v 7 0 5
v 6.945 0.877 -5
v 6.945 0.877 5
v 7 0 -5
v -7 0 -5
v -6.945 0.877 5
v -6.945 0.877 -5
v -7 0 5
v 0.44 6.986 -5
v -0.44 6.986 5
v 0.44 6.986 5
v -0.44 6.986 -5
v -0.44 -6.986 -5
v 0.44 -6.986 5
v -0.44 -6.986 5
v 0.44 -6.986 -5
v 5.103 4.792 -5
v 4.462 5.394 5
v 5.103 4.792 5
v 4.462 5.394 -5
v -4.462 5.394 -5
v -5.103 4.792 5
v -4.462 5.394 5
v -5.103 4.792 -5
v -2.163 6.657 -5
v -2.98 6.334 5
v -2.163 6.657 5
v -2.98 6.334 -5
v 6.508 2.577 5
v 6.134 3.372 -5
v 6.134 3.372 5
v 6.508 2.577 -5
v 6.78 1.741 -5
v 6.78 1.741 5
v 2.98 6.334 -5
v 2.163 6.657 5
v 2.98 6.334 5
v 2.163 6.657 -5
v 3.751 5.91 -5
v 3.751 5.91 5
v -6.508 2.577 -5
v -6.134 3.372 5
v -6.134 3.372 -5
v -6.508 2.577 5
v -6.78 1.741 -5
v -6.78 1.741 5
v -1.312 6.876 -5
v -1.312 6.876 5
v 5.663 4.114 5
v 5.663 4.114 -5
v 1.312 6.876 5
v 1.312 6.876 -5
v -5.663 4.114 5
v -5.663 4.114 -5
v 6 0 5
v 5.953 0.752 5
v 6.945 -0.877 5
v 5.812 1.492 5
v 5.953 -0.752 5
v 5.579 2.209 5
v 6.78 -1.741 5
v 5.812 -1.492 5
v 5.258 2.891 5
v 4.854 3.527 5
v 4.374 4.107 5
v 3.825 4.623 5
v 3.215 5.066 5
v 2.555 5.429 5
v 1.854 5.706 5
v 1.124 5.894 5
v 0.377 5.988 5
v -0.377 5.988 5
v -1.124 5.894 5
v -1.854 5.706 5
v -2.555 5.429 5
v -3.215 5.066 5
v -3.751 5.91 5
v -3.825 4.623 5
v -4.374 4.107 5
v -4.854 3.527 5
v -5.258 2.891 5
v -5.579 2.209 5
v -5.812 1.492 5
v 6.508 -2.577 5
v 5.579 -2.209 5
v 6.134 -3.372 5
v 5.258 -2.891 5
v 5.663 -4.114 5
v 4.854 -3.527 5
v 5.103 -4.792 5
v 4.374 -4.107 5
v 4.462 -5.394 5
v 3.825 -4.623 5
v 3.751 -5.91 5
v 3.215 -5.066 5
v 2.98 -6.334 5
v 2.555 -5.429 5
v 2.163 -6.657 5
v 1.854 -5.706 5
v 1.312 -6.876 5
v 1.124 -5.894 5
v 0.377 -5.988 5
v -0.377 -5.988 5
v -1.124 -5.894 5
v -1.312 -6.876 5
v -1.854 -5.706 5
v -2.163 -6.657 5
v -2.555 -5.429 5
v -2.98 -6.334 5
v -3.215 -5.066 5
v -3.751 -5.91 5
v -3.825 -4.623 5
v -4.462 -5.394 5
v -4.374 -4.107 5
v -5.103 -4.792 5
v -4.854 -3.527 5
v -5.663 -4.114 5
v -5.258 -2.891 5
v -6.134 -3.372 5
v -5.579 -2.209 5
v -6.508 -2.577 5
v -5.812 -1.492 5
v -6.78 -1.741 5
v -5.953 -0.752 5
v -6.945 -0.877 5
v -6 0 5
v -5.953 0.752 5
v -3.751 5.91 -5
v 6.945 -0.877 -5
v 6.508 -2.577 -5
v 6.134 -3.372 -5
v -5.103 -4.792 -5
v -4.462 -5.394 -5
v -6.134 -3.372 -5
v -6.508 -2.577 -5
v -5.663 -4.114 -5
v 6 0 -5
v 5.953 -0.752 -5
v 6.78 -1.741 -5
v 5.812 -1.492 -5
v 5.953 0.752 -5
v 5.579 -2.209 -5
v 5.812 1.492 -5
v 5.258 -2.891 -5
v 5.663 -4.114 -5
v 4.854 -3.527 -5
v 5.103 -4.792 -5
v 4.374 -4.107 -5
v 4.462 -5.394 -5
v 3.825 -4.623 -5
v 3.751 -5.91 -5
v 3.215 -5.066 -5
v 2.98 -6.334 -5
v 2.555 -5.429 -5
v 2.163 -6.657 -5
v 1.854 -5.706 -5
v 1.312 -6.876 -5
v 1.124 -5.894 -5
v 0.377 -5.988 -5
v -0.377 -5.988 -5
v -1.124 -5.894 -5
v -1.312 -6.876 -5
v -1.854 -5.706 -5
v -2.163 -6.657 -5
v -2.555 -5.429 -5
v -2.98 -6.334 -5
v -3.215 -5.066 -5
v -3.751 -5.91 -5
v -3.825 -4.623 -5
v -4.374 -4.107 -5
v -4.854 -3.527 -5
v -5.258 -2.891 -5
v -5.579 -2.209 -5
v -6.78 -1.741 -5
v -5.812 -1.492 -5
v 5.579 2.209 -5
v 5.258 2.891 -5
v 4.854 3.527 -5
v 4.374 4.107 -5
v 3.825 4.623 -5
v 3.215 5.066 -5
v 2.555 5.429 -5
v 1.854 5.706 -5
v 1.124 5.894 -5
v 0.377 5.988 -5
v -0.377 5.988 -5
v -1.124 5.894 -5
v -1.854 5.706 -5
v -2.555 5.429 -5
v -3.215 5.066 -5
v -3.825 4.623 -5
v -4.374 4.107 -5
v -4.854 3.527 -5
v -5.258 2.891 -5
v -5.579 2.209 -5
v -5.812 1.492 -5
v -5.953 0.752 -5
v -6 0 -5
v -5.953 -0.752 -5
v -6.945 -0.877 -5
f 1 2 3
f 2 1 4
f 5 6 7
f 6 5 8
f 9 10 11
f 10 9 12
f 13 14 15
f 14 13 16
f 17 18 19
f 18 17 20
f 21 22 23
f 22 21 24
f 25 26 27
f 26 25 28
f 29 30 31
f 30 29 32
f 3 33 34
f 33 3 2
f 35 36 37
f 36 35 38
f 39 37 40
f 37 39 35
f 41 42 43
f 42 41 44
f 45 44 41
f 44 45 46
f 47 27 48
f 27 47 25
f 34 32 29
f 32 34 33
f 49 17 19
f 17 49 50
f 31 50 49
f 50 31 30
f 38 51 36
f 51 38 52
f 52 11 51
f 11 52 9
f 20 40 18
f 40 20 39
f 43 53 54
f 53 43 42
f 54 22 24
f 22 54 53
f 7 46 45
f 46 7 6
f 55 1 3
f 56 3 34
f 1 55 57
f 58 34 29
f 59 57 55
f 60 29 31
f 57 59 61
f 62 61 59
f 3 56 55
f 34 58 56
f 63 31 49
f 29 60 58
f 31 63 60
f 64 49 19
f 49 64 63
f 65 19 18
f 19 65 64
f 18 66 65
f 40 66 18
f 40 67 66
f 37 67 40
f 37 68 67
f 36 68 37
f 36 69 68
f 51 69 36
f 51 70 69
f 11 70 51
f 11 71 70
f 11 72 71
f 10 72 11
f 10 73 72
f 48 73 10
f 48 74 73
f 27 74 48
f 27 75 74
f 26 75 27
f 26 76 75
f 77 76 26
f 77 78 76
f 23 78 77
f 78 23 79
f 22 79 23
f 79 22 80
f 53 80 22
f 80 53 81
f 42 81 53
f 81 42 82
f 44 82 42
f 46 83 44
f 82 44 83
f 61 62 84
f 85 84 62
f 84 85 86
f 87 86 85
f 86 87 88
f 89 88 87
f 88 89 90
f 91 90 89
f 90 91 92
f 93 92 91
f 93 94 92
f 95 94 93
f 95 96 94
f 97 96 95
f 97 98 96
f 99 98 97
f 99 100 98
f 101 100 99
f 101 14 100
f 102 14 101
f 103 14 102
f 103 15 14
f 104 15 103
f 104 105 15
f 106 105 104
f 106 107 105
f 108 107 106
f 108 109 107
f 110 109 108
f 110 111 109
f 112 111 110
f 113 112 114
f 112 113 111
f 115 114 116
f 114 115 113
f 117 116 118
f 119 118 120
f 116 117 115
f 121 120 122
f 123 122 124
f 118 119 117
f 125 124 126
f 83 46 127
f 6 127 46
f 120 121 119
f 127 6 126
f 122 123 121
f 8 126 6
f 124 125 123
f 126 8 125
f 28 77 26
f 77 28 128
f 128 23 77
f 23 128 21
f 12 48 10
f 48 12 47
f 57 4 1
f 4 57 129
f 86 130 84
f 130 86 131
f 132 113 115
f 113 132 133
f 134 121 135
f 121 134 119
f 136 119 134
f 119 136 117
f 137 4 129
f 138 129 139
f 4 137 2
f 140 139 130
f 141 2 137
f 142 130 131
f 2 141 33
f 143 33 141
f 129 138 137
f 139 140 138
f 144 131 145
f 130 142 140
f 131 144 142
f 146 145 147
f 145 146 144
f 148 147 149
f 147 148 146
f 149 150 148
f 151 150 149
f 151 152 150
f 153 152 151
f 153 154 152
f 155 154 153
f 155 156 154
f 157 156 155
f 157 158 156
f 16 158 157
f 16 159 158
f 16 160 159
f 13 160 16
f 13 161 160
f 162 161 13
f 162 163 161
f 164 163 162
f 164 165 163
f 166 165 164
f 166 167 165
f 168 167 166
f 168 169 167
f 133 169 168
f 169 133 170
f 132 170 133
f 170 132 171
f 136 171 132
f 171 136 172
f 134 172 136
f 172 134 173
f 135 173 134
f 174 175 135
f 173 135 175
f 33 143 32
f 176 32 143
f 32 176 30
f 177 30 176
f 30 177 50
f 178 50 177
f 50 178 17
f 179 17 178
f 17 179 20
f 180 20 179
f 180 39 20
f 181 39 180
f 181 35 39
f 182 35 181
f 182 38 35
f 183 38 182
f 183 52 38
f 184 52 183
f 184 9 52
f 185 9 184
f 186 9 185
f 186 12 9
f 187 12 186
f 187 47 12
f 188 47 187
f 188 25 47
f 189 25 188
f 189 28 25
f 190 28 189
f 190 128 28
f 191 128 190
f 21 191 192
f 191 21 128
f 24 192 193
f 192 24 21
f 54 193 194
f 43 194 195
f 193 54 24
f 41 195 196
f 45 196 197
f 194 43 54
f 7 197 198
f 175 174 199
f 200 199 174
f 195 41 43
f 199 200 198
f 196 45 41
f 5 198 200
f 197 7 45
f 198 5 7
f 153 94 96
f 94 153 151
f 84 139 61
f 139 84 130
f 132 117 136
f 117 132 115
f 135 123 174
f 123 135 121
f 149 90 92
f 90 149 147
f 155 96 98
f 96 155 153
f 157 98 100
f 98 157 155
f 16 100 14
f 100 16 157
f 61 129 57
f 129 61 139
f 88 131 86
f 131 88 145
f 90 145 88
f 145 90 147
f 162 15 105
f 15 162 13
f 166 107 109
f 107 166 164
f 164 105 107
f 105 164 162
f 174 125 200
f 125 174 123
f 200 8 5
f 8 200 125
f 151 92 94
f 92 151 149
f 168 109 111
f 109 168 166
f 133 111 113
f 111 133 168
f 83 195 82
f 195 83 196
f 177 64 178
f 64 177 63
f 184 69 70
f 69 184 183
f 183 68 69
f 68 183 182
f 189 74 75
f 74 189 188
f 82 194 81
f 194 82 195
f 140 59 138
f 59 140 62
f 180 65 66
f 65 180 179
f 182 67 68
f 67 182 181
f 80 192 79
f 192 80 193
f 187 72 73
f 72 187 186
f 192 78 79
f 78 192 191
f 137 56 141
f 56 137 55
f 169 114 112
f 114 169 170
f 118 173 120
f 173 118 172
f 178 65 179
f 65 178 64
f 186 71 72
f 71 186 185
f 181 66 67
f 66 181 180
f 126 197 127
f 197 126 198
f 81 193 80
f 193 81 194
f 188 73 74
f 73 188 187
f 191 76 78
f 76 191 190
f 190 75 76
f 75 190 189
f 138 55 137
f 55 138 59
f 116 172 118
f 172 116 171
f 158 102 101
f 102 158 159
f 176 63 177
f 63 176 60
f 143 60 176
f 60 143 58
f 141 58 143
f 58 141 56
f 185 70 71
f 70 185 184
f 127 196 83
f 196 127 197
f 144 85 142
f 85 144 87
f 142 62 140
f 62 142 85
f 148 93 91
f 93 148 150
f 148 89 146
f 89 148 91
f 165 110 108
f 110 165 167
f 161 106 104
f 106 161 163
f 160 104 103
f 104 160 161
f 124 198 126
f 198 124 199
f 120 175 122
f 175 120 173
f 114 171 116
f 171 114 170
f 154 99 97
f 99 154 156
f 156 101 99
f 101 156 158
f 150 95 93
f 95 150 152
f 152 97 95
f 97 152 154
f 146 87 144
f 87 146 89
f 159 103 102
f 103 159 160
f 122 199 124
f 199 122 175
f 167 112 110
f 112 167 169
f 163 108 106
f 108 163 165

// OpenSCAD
$fn = 50;


difference() {
	union() {
		translate(v = [0, 0, -5.0000000000]) {
			cylinder(h = 10, r = 7.0000000000);
		}
	}
	union() {
		translate(v = [0, 0, -100.0000000000]) {
			cylinder(h = 200, r = 6);
		}
	}
}
